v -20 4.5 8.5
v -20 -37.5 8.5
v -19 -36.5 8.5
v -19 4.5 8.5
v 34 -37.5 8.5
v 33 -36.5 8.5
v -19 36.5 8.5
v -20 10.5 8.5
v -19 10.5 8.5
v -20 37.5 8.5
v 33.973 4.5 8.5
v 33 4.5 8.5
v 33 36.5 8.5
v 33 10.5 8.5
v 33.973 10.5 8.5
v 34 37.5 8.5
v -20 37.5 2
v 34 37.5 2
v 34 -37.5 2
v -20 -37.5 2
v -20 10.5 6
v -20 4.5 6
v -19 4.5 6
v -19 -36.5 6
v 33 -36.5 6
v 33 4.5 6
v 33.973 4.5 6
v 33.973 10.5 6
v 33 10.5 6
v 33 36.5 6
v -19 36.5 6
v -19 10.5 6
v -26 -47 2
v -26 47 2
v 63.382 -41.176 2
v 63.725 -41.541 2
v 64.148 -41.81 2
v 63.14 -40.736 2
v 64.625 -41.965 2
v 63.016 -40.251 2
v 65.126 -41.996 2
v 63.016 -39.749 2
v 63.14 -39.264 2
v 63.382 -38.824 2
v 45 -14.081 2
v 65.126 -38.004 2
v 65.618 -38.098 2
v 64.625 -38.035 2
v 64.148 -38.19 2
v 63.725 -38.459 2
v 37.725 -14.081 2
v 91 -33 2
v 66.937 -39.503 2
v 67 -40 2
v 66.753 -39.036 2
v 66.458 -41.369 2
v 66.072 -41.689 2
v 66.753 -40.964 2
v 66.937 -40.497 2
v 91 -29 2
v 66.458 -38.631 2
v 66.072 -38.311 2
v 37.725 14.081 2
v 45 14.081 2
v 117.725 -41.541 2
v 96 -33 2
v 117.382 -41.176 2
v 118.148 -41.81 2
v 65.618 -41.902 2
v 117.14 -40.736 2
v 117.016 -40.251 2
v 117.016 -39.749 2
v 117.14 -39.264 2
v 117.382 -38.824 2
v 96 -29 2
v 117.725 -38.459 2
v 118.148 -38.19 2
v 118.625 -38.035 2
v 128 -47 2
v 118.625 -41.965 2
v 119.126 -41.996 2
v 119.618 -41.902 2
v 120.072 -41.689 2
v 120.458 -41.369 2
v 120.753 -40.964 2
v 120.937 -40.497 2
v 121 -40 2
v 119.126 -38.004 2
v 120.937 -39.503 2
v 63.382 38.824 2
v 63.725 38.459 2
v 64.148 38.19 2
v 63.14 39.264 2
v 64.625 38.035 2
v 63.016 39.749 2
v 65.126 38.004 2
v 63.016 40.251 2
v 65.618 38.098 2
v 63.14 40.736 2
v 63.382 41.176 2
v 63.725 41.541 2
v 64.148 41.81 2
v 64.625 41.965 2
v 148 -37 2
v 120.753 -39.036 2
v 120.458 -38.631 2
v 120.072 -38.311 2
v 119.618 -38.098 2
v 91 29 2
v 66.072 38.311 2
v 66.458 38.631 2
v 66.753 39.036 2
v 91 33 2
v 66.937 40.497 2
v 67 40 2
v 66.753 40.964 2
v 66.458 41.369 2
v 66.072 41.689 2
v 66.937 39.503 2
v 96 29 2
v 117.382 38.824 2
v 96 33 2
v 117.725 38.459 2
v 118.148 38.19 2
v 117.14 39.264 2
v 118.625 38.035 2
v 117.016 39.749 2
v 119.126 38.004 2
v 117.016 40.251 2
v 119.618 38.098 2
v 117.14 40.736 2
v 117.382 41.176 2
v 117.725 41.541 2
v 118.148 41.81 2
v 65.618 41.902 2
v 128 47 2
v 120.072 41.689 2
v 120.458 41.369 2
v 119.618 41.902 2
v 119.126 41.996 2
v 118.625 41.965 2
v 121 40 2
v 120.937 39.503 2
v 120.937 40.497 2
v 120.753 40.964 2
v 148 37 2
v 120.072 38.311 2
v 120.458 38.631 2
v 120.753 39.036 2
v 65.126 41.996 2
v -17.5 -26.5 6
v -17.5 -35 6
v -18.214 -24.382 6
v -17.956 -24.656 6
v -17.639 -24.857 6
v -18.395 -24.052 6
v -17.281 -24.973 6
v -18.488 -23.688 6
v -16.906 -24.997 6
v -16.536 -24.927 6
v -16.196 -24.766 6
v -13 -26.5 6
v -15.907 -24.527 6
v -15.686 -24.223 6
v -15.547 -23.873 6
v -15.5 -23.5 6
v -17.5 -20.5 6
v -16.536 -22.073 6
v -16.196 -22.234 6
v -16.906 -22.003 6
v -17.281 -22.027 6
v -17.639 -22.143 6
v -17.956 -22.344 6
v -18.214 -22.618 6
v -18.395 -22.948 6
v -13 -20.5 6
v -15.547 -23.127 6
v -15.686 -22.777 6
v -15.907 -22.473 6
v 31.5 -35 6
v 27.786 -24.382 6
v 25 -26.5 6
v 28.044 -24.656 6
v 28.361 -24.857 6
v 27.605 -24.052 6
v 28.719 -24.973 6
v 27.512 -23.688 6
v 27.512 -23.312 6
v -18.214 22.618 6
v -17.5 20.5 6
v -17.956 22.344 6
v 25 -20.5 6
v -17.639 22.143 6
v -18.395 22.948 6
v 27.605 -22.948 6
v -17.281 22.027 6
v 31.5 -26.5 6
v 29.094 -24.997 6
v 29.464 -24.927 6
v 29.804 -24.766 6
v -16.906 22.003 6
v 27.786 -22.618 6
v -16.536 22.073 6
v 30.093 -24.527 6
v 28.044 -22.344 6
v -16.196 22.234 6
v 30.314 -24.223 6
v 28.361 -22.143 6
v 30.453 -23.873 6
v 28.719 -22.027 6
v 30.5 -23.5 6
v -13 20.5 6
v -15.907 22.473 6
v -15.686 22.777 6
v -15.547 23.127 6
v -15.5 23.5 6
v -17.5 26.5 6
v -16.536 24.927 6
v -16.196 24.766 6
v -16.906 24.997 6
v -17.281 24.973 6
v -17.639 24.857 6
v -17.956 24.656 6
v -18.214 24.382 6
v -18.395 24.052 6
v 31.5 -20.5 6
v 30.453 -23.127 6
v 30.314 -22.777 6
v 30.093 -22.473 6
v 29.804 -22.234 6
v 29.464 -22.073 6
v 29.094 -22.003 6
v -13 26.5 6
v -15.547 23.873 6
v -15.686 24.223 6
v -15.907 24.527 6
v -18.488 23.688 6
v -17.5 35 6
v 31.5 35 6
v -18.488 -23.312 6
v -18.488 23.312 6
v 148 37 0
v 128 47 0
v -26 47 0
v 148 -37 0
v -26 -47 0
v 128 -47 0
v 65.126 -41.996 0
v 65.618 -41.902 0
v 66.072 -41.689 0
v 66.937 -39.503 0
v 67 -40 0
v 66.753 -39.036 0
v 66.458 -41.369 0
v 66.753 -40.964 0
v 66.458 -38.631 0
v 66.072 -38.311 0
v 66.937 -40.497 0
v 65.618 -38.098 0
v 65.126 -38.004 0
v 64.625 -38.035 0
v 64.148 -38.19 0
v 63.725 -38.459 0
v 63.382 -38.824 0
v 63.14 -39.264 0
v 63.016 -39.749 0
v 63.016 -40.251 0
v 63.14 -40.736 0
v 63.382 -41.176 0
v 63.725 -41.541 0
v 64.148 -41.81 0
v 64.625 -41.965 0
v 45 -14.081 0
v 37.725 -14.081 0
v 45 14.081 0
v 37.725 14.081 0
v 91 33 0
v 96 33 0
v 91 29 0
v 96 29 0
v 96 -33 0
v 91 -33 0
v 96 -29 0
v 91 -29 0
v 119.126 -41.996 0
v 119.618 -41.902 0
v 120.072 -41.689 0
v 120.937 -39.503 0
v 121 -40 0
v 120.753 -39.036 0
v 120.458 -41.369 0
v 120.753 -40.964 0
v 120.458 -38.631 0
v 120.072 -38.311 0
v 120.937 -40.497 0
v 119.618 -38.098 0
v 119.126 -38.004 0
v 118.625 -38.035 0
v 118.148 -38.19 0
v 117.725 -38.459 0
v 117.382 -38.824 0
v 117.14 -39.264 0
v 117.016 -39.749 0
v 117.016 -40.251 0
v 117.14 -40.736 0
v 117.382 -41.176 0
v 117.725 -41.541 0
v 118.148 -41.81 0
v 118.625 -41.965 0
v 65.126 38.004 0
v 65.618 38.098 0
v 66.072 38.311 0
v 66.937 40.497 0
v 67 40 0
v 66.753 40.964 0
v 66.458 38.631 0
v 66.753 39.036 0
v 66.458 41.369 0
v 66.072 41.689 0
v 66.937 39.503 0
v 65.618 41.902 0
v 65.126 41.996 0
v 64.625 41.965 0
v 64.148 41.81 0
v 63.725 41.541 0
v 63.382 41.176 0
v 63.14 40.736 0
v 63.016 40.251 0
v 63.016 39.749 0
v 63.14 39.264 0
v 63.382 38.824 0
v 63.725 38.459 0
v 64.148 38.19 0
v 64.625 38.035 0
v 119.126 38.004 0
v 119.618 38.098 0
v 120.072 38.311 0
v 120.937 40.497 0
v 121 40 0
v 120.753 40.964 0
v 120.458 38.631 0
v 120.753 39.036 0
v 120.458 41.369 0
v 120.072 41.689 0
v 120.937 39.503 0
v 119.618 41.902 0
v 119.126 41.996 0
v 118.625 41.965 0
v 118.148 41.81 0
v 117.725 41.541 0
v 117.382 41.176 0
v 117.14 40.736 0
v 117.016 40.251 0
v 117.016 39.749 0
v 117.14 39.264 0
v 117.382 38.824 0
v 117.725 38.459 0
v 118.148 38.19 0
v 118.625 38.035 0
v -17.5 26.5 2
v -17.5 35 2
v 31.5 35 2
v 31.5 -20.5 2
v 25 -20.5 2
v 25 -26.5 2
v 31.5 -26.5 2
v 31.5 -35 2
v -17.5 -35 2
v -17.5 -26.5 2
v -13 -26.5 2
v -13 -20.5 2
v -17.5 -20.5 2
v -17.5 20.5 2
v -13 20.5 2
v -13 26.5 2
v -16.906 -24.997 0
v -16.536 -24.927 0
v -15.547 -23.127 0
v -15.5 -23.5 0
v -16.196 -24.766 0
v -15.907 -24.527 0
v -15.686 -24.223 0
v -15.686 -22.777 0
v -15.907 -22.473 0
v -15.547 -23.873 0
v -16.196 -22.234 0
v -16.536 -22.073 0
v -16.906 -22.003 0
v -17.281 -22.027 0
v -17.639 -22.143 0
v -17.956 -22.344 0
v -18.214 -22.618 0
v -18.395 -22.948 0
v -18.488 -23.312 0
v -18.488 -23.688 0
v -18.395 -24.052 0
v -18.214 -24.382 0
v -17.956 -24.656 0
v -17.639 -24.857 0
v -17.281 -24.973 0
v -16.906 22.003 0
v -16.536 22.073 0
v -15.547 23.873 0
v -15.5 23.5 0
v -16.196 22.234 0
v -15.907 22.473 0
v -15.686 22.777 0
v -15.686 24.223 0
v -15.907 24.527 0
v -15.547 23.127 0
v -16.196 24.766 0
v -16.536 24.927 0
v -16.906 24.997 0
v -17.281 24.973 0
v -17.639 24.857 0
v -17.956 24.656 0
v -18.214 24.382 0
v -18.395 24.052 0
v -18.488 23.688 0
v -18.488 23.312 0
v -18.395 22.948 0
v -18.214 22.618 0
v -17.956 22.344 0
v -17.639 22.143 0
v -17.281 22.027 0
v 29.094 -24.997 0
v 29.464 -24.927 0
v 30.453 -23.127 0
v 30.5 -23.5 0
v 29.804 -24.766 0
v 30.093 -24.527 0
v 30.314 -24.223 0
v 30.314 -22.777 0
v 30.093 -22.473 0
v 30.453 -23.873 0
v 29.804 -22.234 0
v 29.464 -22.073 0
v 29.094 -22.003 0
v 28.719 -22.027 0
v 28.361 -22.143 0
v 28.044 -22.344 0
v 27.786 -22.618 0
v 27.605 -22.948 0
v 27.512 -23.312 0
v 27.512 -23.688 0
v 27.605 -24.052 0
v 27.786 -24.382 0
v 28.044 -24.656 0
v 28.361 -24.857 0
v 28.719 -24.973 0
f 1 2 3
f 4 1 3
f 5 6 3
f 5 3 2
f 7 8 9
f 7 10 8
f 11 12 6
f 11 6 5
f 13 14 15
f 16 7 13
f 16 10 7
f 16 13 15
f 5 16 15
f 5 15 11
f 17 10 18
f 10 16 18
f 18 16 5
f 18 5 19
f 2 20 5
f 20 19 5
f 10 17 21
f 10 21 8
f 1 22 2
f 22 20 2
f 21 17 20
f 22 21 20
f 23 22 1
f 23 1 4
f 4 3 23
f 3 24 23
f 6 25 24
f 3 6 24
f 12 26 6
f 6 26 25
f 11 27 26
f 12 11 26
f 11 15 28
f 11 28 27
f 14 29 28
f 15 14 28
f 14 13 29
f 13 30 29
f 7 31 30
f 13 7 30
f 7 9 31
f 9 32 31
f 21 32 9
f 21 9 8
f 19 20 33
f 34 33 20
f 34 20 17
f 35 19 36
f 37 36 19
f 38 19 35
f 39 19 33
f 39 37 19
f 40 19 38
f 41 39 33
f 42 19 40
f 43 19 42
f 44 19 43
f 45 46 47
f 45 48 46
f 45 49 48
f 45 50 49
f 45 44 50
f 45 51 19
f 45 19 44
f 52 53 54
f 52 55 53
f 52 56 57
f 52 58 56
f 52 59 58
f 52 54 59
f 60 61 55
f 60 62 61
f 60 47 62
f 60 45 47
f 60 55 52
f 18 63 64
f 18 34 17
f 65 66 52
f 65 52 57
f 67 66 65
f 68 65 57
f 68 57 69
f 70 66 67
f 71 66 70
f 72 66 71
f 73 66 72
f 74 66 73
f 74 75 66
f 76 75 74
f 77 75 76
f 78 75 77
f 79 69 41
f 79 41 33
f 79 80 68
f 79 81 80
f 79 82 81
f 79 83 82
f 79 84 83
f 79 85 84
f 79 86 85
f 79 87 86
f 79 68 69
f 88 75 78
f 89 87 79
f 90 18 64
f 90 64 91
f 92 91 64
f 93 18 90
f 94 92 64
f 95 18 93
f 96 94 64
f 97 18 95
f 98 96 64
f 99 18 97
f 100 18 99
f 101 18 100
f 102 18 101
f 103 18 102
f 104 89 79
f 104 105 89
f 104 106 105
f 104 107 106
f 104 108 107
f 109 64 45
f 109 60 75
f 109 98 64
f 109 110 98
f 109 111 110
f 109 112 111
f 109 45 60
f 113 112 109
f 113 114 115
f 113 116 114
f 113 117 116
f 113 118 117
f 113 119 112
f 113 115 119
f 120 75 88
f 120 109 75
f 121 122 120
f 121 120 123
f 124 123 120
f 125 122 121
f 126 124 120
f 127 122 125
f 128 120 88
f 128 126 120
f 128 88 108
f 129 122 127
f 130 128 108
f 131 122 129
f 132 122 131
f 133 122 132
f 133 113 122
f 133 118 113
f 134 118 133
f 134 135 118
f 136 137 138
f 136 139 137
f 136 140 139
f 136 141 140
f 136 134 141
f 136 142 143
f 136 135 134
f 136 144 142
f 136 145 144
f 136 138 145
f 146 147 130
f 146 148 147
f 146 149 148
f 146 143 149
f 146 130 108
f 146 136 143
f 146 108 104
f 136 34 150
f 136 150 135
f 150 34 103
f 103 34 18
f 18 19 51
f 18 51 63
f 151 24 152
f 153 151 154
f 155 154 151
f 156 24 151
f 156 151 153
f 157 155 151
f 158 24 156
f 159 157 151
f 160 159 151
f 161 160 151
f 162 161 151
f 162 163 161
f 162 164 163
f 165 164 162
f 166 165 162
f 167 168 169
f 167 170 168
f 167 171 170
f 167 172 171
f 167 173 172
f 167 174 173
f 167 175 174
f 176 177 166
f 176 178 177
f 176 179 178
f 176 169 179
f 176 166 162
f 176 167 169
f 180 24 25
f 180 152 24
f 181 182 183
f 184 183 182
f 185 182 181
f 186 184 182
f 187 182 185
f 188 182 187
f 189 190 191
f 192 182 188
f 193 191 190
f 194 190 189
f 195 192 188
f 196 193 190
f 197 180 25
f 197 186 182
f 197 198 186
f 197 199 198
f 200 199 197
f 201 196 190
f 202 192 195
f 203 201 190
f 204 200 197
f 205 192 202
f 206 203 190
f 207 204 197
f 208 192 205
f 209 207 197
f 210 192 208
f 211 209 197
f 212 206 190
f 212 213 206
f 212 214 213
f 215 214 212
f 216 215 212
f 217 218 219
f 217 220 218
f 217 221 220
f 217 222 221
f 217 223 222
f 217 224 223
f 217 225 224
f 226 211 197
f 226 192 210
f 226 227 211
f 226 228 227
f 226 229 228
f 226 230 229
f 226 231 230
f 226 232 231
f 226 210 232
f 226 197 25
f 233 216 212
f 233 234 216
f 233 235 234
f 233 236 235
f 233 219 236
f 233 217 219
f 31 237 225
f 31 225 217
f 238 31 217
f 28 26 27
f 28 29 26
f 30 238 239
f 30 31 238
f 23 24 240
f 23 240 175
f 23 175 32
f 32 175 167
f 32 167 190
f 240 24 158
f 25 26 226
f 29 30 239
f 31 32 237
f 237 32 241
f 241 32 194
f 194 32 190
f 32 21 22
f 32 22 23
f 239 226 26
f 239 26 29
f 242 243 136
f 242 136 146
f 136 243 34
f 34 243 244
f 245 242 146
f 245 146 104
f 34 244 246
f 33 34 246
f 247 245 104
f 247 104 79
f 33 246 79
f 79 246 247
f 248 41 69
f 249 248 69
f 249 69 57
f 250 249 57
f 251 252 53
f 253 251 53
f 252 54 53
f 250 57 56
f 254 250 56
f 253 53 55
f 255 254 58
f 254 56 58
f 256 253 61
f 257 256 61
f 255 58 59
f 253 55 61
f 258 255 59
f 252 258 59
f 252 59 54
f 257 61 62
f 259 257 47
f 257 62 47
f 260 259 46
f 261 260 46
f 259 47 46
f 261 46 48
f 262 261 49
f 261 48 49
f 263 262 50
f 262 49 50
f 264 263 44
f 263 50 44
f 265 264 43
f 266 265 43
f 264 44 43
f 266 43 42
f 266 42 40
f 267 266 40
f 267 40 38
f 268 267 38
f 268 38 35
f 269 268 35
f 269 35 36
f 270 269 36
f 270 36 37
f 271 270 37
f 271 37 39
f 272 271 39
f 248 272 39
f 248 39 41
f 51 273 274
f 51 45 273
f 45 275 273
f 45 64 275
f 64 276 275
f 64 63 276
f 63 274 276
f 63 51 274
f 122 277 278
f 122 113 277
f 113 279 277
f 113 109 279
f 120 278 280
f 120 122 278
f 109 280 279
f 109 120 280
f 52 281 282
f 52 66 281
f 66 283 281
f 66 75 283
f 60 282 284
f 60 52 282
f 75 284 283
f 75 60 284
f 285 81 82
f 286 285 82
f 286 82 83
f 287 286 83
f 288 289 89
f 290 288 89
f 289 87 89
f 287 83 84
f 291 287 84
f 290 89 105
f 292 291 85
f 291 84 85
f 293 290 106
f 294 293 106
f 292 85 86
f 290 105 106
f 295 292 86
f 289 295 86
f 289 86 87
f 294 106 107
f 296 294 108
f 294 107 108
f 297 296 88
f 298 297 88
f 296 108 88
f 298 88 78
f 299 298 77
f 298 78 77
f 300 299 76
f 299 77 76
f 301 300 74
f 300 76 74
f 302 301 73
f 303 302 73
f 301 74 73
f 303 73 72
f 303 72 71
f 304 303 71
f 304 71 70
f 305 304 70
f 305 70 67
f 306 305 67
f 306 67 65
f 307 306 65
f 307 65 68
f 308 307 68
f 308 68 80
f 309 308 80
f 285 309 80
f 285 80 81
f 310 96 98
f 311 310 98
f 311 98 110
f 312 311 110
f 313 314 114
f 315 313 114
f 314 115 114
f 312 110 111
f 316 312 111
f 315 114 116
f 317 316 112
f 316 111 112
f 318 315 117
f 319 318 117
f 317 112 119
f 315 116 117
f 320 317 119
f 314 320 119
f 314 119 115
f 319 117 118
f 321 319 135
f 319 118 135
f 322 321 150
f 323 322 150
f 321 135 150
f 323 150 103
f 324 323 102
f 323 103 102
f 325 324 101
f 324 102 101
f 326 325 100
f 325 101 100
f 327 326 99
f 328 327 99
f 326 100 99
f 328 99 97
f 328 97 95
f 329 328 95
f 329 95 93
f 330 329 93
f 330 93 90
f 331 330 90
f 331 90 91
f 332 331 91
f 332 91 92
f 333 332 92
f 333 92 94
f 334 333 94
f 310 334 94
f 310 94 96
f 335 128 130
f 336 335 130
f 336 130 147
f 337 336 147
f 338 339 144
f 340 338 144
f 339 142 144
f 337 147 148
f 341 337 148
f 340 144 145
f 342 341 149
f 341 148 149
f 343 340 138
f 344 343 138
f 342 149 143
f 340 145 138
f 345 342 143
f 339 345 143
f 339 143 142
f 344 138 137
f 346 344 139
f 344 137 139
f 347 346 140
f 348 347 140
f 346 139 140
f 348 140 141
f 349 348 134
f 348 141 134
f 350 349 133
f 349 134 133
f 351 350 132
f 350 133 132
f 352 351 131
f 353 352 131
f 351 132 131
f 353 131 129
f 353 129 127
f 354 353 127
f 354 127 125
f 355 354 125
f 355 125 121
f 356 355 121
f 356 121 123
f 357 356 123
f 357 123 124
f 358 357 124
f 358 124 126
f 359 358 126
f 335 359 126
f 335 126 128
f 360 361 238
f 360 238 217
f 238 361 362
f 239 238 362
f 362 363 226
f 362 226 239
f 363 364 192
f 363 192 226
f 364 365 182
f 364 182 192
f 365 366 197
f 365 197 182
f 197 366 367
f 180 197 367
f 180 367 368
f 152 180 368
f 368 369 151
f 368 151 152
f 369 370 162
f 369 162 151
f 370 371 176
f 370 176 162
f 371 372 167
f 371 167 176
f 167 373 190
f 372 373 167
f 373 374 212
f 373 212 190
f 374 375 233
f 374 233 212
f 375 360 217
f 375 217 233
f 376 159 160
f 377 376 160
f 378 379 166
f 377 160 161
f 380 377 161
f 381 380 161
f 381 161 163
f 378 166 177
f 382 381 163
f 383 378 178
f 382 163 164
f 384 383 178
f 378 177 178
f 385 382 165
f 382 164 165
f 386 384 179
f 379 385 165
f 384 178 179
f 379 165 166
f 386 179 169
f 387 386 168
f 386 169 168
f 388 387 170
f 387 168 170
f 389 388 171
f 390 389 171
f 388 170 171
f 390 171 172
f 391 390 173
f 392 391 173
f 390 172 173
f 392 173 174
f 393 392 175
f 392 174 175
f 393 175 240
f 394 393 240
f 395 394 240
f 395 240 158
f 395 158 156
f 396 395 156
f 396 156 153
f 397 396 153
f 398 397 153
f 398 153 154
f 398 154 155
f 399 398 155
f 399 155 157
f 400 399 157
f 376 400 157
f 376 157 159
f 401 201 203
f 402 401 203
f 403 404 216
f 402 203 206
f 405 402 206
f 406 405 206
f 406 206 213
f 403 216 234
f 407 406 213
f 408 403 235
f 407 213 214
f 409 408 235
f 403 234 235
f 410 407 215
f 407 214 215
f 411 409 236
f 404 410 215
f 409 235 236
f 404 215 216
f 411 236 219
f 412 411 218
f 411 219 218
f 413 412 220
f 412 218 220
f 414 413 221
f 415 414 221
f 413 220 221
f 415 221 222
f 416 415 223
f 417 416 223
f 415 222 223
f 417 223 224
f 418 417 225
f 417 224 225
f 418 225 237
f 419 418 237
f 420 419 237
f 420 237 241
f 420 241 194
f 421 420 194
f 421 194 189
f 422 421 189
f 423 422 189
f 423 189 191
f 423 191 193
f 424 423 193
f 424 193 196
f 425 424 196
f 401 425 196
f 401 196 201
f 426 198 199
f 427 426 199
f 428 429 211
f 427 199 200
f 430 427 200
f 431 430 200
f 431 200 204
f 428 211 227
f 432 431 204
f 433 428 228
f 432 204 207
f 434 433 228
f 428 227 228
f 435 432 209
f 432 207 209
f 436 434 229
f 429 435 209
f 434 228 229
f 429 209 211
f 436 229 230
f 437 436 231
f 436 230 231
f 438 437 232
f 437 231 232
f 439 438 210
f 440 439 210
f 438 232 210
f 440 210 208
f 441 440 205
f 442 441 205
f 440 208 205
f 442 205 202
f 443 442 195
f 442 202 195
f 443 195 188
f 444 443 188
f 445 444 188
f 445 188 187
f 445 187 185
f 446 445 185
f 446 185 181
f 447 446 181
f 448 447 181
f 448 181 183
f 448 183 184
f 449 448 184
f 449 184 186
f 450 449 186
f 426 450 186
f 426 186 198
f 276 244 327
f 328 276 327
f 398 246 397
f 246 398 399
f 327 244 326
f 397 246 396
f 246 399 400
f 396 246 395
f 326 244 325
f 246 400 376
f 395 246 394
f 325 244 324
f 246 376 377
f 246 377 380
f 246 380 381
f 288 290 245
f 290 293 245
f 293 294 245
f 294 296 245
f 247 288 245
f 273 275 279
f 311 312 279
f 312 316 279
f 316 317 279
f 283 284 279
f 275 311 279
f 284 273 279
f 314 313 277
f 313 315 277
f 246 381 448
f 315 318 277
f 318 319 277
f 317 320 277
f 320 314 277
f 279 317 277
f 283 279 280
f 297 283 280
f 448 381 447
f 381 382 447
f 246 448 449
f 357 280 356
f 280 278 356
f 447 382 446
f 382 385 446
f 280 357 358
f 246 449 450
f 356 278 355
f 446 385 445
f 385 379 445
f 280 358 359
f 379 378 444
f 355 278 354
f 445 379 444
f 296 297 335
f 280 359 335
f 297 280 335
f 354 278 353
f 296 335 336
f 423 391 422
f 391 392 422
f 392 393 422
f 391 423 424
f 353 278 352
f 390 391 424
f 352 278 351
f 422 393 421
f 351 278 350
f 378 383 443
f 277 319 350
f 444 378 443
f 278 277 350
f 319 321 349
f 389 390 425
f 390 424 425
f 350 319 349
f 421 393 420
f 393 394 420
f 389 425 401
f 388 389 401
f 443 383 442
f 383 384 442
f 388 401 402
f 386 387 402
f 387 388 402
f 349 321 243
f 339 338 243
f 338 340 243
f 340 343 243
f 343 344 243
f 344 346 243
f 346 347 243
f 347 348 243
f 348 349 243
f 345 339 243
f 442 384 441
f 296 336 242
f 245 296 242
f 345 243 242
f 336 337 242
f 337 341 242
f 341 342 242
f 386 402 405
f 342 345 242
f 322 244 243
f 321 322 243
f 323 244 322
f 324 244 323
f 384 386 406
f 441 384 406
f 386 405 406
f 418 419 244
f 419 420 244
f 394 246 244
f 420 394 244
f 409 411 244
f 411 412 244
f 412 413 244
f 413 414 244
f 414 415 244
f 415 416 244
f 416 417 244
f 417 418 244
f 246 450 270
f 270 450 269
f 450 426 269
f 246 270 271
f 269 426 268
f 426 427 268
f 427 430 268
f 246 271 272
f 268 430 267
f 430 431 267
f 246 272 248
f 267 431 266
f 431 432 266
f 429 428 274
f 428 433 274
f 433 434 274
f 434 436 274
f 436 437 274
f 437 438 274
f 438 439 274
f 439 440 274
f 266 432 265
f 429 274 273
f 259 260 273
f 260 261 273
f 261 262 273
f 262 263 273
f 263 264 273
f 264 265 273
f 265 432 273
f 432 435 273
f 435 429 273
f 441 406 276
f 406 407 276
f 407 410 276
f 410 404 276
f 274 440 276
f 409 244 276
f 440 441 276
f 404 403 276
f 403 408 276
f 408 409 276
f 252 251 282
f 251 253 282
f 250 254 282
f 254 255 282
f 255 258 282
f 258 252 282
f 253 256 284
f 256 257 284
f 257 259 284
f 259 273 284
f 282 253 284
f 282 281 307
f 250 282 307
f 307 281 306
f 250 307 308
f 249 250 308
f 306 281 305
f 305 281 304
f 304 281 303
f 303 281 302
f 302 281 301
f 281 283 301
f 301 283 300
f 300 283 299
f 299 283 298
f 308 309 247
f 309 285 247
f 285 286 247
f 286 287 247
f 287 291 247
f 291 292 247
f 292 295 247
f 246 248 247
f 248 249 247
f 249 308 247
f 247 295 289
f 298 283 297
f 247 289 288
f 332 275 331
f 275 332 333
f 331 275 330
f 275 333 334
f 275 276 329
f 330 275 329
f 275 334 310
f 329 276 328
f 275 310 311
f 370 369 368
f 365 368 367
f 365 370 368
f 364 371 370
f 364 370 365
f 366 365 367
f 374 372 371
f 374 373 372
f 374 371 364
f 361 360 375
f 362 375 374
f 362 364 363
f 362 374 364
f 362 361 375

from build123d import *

# Parameters (mm, degrees)
PAD_DEPTH       = 2
SKETCH001_W     = 54
SKETCH001_H     = 75
PAD001_DEPTH    = 4
SKETCH002_W     = 54
SKETCH002_H     = 75
SKETCH002_W_2   = 52
SKETCH002_H_2   = 73
PAD002_DEPTH    = 2.5
SKETCH003_R     = 1.5
POCKET_DEPTH    = 6.001
SKETCH004_W     = 1.028311
SKETCH004_H     = 6
SKETCH004_W_2   = 1.0671
POCKET001_DEPTH = 2.5
SKETCH005_W     = 5
SKETCH005_H     = 4
POCKET002_DEPTH = 2.001
SKETCH006_R     = 2
POCKET003_DEPTH = 2.001
SKETCH007_W     = 7.274784
SKETCH007_H     = 28.1615223689
POCKET004_DEPTH = 5


with BuildPart() as part:
    # Sketch → Pad (new body)
    with BuildSketch(Plane.XY):
        Polygon((-26, 47), (-26, -47), (128, -47), (148, -37), (148, 37), (128, 47), align=None)
    extrude(amount=PAD_DEPTH)

    # Sketch001 → Pad001 (new body)
    with BuildSketch(Plane.XY.offset(2)):
        with Locations((7, 0)):
            Rectangle(SKETCH001_W, SKETCH001_H)
        Polygon((-17.5, 35), (31.5, 35), (31.5, -20.5), (25, -20.5), (25, -26.5), (31.5, -26.5), (31.5, -35), (-17.5, -35), (-17.5, -26.5), (-13, -26.5), (-13, -20.5), (-17.5, -20.5), (-17.5, 20.5), (-13, 20.5), (-13, 26.5), (-17.5, 26.5), align=None, mode=Mode.SUBTRACT)
    extrude(amount=PAD001_DEPTH)

    # Sketch002 → Pad002 (new body)
    with BuildSketch(Plane.XY.offset(6)):
        with Locations((7, 0)):
            Rectangle(SKETCH002_W, SKETCH002_H)
        with Locations((7, 0)):
            Rectangle(SKETCH002_W_2, SKETCH002_H_2, mode=Mode.SUBTRACT)
    extrude(amount=PAD002_DEPTH)

    # Sketch003 → Pocket (cut, through all)
    with BuildSketch(Plane.XY.offset(6)):
        with Locations((-17, 23.5)):
            Circle(SKETCH003_R)
        with Locations((-17, -23.5)):
            Circle(SKETCH003_R)
        with Locations((29, -23.5)):
            Circle(SKETCH003_R)
    extrude(amount=-POCKET_DEPTH, mode=Mode.SUBTRACT)

    # Sketch004 → Pocket001 (cut)
    with BuildSketch(Plane.XY.offset(8.5)):
        with Locations((-19.4858445, 7.5)):
            Rectangle(SKETCH004_W, SKETCH004_H)
        with Locations((33.439625, 7.5)):
            Rectangle(SKETCH004_W_2, SKETCH004_H)
    extrude(amount=-POCKET001_DEPTH, mode=Mode.SUBTRACT)

    # Sketch005 → Pocket002 (cut, through all)
    with BuildSketch(Plane.XY.offset(2)):
        with Locations((93.5, 31)):
            Rectangle(SKETCH005_W, SKETCH005_H)
        with Locations((93.5, -31)):
            Rectangle(SKETCH005_W, SKETCH005_H)
    extrude(amount=-POCKET002_DEPTH, mode=Mode.SUBTRACT)

    # Sketch006 → Pocket003 (cut, through all)
    with BuildSketch(Plane.XY.offset(2)):
        with Locations((119, 40)):
            Circle(SKETCH006_R)
        with Locations((65, 40)):
            Circle(SKETCH006_R)
        with Locations((119, -40)):
            Circle(SKETCH006_R)
        with Locations((65, -40)):
            Circle(SKETCH006_R)
    extrude(amount=-POCKET003_DEPTH, mode=Mode.SUBTRACT)

    # Sketch007 → Pocket004 (cut)
    with BuildSketch(Plane.XY.offset(2)):
        with Locations((41.362608, 0)):
            Rectangle(SKETCH007_W, SKETCH007_H)
    extrude(amount=-POCKET004_DEPTH, mode=Mode.SUBTRACT)


solid = part.part
